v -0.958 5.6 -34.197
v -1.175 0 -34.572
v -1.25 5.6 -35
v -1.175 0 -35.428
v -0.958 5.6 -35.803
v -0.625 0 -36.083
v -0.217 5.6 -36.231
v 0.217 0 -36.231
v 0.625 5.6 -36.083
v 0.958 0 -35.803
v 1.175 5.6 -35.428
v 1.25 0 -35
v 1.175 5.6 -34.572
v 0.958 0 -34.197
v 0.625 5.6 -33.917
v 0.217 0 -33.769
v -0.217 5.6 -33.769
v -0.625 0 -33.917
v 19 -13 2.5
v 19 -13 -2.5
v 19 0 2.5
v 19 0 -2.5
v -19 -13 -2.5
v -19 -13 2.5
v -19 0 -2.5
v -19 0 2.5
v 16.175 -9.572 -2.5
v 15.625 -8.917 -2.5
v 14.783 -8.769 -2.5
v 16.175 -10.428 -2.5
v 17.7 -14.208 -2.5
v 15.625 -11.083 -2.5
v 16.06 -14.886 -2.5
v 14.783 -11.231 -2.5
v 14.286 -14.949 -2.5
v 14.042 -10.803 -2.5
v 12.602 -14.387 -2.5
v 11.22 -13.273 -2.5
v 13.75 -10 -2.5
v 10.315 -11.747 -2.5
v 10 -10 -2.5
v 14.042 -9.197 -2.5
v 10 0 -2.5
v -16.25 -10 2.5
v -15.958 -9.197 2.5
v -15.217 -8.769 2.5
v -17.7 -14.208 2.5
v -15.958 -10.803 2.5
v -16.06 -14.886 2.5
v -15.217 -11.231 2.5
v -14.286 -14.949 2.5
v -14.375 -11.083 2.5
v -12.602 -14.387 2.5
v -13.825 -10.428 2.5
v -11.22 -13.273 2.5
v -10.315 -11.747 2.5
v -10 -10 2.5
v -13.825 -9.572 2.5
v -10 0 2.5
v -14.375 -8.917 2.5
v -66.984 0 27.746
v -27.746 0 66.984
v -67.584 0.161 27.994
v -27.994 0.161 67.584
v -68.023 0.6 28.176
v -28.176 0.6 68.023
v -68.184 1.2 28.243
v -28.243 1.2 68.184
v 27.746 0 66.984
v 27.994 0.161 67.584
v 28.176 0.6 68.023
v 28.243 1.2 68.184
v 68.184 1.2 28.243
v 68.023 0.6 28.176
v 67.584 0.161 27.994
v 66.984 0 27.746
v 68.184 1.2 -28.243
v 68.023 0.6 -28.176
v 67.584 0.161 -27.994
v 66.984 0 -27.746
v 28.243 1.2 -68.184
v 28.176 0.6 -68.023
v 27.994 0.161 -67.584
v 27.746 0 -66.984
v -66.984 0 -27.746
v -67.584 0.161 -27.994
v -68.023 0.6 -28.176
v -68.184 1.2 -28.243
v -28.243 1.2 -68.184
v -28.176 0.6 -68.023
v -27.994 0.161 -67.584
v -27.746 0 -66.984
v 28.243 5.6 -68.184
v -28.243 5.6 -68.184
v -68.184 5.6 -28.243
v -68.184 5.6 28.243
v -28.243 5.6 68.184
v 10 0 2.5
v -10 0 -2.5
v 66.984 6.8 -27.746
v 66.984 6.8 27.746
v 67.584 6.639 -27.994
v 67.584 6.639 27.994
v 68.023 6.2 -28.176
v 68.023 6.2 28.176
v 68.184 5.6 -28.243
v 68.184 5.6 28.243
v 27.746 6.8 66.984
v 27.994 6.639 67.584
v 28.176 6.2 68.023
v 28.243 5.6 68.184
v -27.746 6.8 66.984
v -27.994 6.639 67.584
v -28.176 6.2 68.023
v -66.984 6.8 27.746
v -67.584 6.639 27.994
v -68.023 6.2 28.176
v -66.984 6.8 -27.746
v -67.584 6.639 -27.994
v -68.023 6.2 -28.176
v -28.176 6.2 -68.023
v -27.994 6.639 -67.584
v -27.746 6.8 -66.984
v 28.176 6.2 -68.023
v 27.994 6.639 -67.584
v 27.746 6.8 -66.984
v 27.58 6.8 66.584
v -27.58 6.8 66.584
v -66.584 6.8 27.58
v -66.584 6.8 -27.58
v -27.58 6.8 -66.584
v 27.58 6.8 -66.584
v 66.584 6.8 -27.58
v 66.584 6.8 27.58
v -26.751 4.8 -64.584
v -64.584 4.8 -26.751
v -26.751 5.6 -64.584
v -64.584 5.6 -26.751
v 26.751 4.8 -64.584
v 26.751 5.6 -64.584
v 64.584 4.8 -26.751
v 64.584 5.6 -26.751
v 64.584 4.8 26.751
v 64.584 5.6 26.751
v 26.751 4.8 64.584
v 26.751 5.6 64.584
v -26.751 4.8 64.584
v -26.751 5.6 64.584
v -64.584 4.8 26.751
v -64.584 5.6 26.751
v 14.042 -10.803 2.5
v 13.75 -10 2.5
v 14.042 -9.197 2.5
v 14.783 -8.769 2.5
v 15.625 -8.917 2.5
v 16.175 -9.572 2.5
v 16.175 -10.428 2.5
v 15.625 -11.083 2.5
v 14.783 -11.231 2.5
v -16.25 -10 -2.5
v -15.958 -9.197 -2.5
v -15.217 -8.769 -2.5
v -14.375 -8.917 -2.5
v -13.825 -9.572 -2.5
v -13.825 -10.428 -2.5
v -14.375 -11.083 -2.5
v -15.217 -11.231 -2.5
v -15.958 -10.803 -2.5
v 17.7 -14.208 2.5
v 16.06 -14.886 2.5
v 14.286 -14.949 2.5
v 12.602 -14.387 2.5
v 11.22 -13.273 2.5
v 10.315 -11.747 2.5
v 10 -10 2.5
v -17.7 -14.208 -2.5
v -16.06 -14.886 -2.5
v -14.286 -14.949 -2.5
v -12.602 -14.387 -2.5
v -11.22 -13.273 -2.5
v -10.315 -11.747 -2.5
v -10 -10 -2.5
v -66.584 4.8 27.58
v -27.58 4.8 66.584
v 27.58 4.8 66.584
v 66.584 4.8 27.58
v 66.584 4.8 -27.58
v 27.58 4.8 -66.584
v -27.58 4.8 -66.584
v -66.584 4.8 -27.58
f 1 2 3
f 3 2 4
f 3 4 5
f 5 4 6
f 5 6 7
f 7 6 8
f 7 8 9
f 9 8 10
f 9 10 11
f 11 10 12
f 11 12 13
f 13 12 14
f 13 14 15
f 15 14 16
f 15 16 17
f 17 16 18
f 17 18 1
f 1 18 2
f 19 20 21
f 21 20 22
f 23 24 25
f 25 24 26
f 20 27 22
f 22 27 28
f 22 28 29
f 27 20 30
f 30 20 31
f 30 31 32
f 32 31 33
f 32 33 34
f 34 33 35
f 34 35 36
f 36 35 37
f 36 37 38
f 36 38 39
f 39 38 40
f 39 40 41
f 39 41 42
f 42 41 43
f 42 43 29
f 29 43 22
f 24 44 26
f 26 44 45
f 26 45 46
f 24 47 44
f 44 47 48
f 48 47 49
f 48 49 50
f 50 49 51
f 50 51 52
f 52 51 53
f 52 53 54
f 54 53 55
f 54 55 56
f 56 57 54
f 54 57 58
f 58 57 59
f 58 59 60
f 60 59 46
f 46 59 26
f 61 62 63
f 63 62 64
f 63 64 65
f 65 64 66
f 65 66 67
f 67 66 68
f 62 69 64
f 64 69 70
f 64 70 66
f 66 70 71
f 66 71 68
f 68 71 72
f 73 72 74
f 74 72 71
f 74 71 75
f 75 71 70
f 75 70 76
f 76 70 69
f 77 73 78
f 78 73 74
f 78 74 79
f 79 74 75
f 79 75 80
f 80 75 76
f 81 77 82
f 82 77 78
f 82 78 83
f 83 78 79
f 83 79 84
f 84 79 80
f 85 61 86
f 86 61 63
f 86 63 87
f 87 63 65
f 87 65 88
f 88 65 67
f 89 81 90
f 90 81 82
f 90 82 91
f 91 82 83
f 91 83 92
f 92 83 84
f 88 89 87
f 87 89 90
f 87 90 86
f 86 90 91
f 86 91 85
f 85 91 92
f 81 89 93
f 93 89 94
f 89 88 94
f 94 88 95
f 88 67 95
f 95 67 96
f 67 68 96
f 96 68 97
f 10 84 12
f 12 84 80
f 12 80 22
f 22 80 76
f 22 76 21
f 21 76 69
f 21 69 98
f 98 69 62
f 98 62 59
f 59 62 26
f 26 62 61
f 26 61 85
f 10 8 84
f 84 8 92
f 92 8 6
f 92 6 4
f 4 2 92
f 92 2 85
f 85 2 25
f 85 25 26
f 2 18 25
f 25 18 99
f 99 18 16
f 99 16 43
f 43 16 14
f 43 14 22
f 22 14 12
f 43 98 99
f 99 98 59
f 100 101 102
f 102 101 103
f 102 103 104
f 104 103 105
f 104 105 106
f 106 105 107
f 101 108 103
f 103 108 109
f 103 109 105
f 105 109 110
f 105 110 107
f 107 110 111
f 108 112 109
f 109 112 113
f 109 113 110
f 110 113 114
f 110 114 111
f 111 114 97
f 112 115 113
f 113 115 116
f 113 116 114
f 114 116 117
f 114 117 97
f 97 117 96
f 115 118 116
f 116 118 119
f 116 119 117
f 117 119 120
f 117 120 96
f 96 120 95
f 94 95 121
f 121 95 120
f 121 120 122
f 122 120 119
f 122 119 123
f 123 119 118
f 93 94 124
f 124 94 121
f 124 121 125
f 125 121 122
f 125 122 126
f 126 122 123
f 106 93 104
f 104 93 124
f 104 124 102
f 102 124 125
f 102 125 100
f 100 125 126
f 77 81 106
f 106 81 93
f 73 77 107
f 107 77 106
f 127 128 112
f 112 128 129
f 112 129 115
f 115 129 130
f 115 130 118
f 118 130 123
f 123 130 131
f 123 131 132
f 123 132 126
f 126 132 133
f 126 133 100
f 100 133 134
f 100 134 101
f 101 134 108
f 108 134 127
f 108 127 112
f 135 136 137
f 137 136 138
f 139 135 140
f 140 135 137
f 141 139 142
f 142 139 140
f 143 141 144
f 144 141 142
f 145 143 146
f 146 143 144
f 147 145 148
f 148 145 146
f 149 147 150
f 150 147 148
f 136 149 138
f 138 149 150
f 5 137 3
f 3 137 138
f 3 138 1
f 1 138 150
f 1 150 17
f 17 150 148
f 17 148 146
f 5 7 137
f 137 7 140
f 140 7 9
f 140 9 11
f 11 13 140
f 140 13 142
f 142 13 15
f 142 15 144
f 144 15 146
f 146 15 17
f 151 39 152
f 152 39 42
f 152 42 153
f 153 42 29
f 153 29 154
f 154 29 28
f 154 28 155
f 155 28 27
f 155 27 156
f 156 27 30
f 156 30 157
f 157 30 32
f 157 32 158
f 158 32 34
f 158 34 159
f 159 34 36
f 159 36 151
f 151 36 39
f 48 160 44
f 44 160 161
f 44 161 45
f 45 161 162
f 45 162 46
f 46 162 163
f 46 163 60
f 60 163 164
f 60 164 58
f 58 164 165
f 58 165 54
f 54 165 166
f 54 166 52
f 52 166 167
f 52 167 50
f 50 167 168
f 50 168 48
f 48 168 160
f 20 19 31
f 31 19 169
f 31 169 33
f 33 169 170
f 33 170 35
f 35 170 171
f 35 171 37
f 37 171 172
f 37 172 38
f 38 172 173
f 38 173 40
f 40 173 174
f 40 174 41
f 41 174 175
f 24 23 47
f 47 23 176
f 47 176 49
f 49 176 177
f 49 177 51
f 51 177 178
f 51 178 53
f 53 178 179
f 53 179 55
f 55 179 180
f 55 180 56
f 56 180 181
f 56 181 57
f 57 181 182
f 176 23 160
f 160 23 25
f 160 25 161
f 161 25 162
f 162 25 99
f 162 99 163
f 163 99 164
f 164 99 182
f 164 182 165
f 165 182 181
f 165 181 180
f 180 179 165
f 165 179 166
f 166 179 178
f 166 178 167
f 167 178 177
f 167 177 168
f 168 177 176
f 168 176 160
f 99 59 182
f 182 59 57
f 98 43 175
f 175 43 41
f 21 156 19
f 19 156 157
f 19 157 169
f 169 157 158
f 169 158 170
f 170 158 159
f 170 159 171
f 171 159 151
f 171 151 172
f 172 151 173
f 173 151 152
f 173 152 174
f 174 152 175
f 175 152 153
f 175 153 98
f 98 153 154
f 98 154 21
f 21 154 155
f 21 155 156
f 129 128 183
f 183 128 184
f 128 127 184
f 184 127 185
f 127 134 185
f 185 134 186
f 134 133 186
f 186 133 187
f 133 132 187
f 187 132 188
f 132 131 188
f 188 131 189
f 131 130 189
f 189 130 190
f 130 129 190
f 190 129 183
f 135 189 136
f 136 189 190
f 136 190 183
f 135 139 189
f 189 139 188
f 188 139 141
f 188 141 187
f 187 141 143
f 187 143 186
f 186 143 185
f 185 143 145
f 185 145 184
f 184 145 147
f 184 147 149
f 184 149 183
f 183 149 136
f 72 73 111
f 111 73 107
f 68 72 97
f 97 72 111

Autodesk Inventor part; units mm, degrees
ref_plane "YZ Plane" through (0, 0, 0) normal (1, 0, 0) x (0, 1, 0)
ref_plane "XZ Plane" through (0, 0, 0) normal (0, 1, 0) x (-1, 0, 0)
ref_plane "XY Plane" through (0, 0, 0) normal (0, 0, 1) x (1, 0, 0)
sketch "스케치3" plane through (0, 0, 0) normal (0, 1, 0) x (-1, 0, 0)
  line L0 (68.1838, -28.2426) -> (28.2426, -68.1838)
  line L1 (28.2426, -68.1838) -> (-28.2426, -68.1838)
  line L2 (-28.2426, -68.1838) -> (-68.1838, -28.2426)
  line L3 (-68.1838, -28.2426) -> (-68.1838, 28.2426)
  line L4 (-68.1838, 28.2426) -> (-28.2426, 68.1838)
  line L5 (-28.2426, 68.1838) -> (28.2426, 68.1838)
  line L6 (28.2426, 68.1838) -> (68.1838, 28.2426)
  line L7 (68.1838, 28.2426) -> (68.1838, -28.2426)
  line L8 (65.1838, -27) -> (27, -65.1838)
  line L9 (27, -65.1838) -> (-27, -65.1838)
  line L10 (-27, -65.1838) -> (-65.1838, -27)
  line L11 (-65.1838, -27) -> (-65.1838, 27)
  line L12 (-65.1838, 27) -> (-27, 65.1838)
  line L13 (-27, 65.1838) -> (27, 65.1838)
  line L14 (27, 65.1838) -> (65.1838, 27)
  line L15 (65.1838, 27) -> (65.1838, -27)
  point P0 (0, 0)
  point P1 (0, 0)
  point P2 (0, 0)
  point P3 (0, 0)
  dimension "d43" = 54
  dimension "d44" = 3
extrude "돌출2" add sketch "스케치3" along normal blind 6.8 contours L0 L1 L2 L3 L4 L5 L6 L7 | L8 L9 L10 L11 L12 L13 L14 L15
sketch "스케치4" plane through (0, 6.8, 0) normal (0, 1, 0) x (1, 0, 0)
  line L0 (26.8343, -64.7838) -> (-26.8343, -64.7838)
  line L1 (-26.8343, -64.7838) -> (-64.7838, -26.8343)
  line L2 (-64.7838, -26.8343) -> (-64.7838, 26.8343)
  line L3 (-64.7838, 26.8343) -> (-26.8343, 64.7838)
  line L4 (-26.8343, 64.7838) -> (26.8343, 64.7838)
  line L5 (26.8343, 64.7838) -> (64.7838, 26.8343)
  line L6 (64.7838, 26.8343) -> (64.7838, -26.8343)
  line L7 (64.7838, -26.8343) -> (26.8343, -64.7838)
  line L8 (-27.5799, 66.5838) -> (27.5799, 66.5838)
  line L9 (27.5799, 66.5838) -> (66.5838, 27.5799)
  line L10 (66.5838, 27.5799) -> (66.5838, -27.5799)
  line L11 (66.5838, -27.5799) -> (27.5799, -66.5838)
  line L12 (27.5799, -66.5838) -> (-27.5799, -66.5838)
  line L13 (-27.5799, -66.5838) -> (-66.5838, -27.5799)
  line L14 (-66.5838, -27.5799) -> (-66.5838, 27.5799)
  line L15 (-66.5838, 27.5799) -> (-27.5799, 66.5838)
  line L16 (-26.7515, 64.5838) -> (26.7515, 64.5838)
  line L17 (26.7515, 64.5838) -> (64.5838, 26.7515)
  line L18 (64.5838, 26.7515) -> (64.5838, -26.7515)
  line L19 (64.5838, -26.7515) -> (26.7515, -64.5838)
  line L20 (26.7515, -64.5838) -> (-26.7515, -64.5838)
  line L21 (-26.7515, -64.5838) -> (-64.5838, -26.7515)
  line L22 (-64.5838, -26.7515) -> (-64.5838, 26.7515)
  line L23 (-64.5838, 26.7515) -> (-26.7515, 64.5838)
  line L24 (-68.1838, 28.2426) -> (-68.1838, -28.2426) projected
  point P0 (0, 0)
  point P1 (0, 0)
  point P2 (0, 0)
  point P3 (0, 0)
  dimension "d42" = 1.8
  dimension "d45" = 0.2
  dimension "d60" = 1.6
extrude "돌출3" cut sketch "스케치4" against normal blind 2 contours L0 L1 L2 L3 L4 L5 L6 L7 | L8 L9 L10 L11 L12 L13 L14 L15 | L16 L17 L18 L19 L20 L21 L22 L23
sketch "스케치5" plane through (0, 0, 0) normal (0, -1, 0) x (1, 0, 0)
  line L0 (10, 2.5) -> (20, 2.5)
  line L1 (20, 2.5) -> (20, -2.5)
  line L2 (20, -2.5) -> (10, -2.5)
  line L3 (10, -2.5) -> (10, 2.5)
  line L4 (10, 2.5) -> (20, -2.5) construction
  line L5 (20, 2.5) -> (10, -2.5) construction
  line L6 (-20, 2.5) -> (-10, 2.5)
  line L7 (-10, 2.5) -> (-10, -2.5)
  line L8 (-10, -2.5) -> (-20, -2.5)
  line L9 (-20, -2.5) -> (-20, 2.5)
  line L10 (-20, 2.5) -> (-10, -2.5) construction
  line L11 (-10, 2.5) -> (-20, -2.5) construction
  point P0 (0, 0)
  point P1 (15, 0)
  point P2 (-15, 0)
  dimension "d11" = 10
  dimension "d12" = 5
  dimension "d13" = 10
  dimension "d16" = 30
extrude "돌출4" add sketch "스케치5" along normal blind 10
sketch "스케치6" plane through (-10, 0, -2.5) normal (0, 0, -1) x (-1, 0, 0)
  circle A0 centre (5, -10) radius 5
  circle A1 centre (-25, -10) radius 5
  line L0 (-20, -10) -> (-30, -10) projected
  line L1 (10, -10) -> (0, -10) projected
  point P0 (-10, 0)
  dimension "d23" = 10
  dimension "d24" = 10
extrude "돌출5" add sketch "스케치6" against normal blind 5
sketch "스케치7" plane through (-10, 0, -2.5) normal (0, 0, -1) x (-1, 0, 0)
  circle A0 centre (5, -10) radius 1.25
  line L0 (10, 0) -> (10, -10) projected
  line L1 (0, 0) -> (10, 0) projected
  line L2 (4.7788, 0) -> (0, 0)
  circle A1 centre (-25, -10) radius 1.25
  point P0 (-10, 0)
  dimension "d27" = 2.5
  dimension "d28" = 5
  dimension "d31" = 30
extrude "돌출6" cut sketch "스케치7" against normal blind 5
sketch "스케치8" plane through (0, 0, 0) normal (0, -1, 0) x (1, 0, 0)
  circle A0 centre (0, -35) radius 1.25
  line L0 (-10, 2.5) -> (-10, -2.5) projected
  point P0 (0, 0)
  point P1 (-10, 0)
  dimension "d38" = 2.5
  dimension "d39" = 35
sketch "스케치9" plane through (0, 4.8, 0) normal (0, 1, 0) x (1, 0, 0)
  line L0 (-26.7515, 64.5838) -> (26.7515, 64.5838)
  line L1 (26.7515, 64.5838) -> (64.5838, 26.7515)
  line L2 (64.5838, 26.7515) -> (64.5838, -26.7515)
  line L3 (64.5838, -26.7515) -> (26.7515, -64.5838)
  line L4 (26.7515, -64.5838) -> (-26.7515, -64.5838)
  line L5 (-26.7515, -64.5838) -> (-64.5838, -26.7515)
  line L6 (-64.5838, -26.7515) -> (-64.5838, 26.7515)
  line L7 (-64.5838, 26.7515) -> (-26.7515, 64.5838)
  line L8 (-27.5799, 66.5838) -> (27.5799, 66.5838) projected
  line L9 (-25.5088, 61.5838) -> (25.5088, 61.5838)
  line L10 (25.5088, 61.5838) -> (61.5838, 25.5088)
  line L11 (61.5838, 25.5088) -> (61.5838, -25.5088)
  line L12 (61.5838, -25.5088) -> (25.5088, -61.5838)
  line L13 (25.5088, -61.5838) -> (-25.5088, -61.5838)
  line L14 (-25.5088, -61.5838) -> (-61.5838, -25.5088)
  line L15 (-61.5838, -25.5088) -> (-61.5838, 25.5088)
  line L16 (-61.5838, 25.5088) -> (-25.5088, 61.5838)
  point P0 (0, 0)
  point P1 (0, 0)
  point P2 (0, 0)
  dimension "d46" = 2
  dimension "d47" = 3
extrude "돌출8" add sketch "스케치9" along normal blind 0.8 contours L0 L1 L2 L3 L4 L5 L6 L7 | L9 L10 L11 L12 L13 L14 L15 L16
fillet "모깎기1" radius 1.2 16 edges at (-68.1838, 6.8, 0) (-48.2132, 6.8, 48.2132) (0, 6.8, 68.1838) (48.2132, 6.8, 48.2132) (68.1838, 6.8, 0) (48.2132, 6.8, -48.2132) (0, 6.8, -68.1838) (-48.2132, 6.8, -48.2132) (48.2132, 0, 48.2132) (0, 0, 68.1838) (-48.2132, 0, 48.2132) (-68.1838, 0, 0) (-48.2132, 0, -48.2132) (0, 0, -68.1838) (48.2132, 0, -48.2132) (68.1838, 0, 0)
sketch "스케치10" plane through (0, 0, 0) normal (0, -1, 0) x (1, 0, 0)
  line L0 (-20, 2.5) -> (-10, 2.5) projected
  line L1 (-10, -2.5) -> (-20, -2.5) projected
  line L2 (-20, 2.5) -> (-19, 2.5)
  line L3 (-19, 2.5) -> (-19, -2.5)
  line L4 (-19, -2.5) -> (-20, -2.5)
  line L5 (-20, -2.5) -> (-20, 2.5)
  line L6 (20, -2.5) -> (10, -2.5) projected
  line L7 (10, 2.5) -> (20, 2.5) projected
  line L8 (20, -2.5) -> (19, -2.5)
  line L9 (19, -2.5) -> (19, 2.5)
  line L10 (19, 2.5) -> (20, 2.5)
  line L11 (20, 2.5) -> (20, -2.5)
  point P0 (0, 0)
  dimension "d54" = 1
  dimension "d55" = 1
extrude "돌출9" cut sketch "스케치10" along normal blind 15
extrude "돌출10" cut sketch "스케치8" against normal up to surface (5.6 mm away)
equation "\"d55\" = d54"
properties part number "OV-PAM_top_2"
